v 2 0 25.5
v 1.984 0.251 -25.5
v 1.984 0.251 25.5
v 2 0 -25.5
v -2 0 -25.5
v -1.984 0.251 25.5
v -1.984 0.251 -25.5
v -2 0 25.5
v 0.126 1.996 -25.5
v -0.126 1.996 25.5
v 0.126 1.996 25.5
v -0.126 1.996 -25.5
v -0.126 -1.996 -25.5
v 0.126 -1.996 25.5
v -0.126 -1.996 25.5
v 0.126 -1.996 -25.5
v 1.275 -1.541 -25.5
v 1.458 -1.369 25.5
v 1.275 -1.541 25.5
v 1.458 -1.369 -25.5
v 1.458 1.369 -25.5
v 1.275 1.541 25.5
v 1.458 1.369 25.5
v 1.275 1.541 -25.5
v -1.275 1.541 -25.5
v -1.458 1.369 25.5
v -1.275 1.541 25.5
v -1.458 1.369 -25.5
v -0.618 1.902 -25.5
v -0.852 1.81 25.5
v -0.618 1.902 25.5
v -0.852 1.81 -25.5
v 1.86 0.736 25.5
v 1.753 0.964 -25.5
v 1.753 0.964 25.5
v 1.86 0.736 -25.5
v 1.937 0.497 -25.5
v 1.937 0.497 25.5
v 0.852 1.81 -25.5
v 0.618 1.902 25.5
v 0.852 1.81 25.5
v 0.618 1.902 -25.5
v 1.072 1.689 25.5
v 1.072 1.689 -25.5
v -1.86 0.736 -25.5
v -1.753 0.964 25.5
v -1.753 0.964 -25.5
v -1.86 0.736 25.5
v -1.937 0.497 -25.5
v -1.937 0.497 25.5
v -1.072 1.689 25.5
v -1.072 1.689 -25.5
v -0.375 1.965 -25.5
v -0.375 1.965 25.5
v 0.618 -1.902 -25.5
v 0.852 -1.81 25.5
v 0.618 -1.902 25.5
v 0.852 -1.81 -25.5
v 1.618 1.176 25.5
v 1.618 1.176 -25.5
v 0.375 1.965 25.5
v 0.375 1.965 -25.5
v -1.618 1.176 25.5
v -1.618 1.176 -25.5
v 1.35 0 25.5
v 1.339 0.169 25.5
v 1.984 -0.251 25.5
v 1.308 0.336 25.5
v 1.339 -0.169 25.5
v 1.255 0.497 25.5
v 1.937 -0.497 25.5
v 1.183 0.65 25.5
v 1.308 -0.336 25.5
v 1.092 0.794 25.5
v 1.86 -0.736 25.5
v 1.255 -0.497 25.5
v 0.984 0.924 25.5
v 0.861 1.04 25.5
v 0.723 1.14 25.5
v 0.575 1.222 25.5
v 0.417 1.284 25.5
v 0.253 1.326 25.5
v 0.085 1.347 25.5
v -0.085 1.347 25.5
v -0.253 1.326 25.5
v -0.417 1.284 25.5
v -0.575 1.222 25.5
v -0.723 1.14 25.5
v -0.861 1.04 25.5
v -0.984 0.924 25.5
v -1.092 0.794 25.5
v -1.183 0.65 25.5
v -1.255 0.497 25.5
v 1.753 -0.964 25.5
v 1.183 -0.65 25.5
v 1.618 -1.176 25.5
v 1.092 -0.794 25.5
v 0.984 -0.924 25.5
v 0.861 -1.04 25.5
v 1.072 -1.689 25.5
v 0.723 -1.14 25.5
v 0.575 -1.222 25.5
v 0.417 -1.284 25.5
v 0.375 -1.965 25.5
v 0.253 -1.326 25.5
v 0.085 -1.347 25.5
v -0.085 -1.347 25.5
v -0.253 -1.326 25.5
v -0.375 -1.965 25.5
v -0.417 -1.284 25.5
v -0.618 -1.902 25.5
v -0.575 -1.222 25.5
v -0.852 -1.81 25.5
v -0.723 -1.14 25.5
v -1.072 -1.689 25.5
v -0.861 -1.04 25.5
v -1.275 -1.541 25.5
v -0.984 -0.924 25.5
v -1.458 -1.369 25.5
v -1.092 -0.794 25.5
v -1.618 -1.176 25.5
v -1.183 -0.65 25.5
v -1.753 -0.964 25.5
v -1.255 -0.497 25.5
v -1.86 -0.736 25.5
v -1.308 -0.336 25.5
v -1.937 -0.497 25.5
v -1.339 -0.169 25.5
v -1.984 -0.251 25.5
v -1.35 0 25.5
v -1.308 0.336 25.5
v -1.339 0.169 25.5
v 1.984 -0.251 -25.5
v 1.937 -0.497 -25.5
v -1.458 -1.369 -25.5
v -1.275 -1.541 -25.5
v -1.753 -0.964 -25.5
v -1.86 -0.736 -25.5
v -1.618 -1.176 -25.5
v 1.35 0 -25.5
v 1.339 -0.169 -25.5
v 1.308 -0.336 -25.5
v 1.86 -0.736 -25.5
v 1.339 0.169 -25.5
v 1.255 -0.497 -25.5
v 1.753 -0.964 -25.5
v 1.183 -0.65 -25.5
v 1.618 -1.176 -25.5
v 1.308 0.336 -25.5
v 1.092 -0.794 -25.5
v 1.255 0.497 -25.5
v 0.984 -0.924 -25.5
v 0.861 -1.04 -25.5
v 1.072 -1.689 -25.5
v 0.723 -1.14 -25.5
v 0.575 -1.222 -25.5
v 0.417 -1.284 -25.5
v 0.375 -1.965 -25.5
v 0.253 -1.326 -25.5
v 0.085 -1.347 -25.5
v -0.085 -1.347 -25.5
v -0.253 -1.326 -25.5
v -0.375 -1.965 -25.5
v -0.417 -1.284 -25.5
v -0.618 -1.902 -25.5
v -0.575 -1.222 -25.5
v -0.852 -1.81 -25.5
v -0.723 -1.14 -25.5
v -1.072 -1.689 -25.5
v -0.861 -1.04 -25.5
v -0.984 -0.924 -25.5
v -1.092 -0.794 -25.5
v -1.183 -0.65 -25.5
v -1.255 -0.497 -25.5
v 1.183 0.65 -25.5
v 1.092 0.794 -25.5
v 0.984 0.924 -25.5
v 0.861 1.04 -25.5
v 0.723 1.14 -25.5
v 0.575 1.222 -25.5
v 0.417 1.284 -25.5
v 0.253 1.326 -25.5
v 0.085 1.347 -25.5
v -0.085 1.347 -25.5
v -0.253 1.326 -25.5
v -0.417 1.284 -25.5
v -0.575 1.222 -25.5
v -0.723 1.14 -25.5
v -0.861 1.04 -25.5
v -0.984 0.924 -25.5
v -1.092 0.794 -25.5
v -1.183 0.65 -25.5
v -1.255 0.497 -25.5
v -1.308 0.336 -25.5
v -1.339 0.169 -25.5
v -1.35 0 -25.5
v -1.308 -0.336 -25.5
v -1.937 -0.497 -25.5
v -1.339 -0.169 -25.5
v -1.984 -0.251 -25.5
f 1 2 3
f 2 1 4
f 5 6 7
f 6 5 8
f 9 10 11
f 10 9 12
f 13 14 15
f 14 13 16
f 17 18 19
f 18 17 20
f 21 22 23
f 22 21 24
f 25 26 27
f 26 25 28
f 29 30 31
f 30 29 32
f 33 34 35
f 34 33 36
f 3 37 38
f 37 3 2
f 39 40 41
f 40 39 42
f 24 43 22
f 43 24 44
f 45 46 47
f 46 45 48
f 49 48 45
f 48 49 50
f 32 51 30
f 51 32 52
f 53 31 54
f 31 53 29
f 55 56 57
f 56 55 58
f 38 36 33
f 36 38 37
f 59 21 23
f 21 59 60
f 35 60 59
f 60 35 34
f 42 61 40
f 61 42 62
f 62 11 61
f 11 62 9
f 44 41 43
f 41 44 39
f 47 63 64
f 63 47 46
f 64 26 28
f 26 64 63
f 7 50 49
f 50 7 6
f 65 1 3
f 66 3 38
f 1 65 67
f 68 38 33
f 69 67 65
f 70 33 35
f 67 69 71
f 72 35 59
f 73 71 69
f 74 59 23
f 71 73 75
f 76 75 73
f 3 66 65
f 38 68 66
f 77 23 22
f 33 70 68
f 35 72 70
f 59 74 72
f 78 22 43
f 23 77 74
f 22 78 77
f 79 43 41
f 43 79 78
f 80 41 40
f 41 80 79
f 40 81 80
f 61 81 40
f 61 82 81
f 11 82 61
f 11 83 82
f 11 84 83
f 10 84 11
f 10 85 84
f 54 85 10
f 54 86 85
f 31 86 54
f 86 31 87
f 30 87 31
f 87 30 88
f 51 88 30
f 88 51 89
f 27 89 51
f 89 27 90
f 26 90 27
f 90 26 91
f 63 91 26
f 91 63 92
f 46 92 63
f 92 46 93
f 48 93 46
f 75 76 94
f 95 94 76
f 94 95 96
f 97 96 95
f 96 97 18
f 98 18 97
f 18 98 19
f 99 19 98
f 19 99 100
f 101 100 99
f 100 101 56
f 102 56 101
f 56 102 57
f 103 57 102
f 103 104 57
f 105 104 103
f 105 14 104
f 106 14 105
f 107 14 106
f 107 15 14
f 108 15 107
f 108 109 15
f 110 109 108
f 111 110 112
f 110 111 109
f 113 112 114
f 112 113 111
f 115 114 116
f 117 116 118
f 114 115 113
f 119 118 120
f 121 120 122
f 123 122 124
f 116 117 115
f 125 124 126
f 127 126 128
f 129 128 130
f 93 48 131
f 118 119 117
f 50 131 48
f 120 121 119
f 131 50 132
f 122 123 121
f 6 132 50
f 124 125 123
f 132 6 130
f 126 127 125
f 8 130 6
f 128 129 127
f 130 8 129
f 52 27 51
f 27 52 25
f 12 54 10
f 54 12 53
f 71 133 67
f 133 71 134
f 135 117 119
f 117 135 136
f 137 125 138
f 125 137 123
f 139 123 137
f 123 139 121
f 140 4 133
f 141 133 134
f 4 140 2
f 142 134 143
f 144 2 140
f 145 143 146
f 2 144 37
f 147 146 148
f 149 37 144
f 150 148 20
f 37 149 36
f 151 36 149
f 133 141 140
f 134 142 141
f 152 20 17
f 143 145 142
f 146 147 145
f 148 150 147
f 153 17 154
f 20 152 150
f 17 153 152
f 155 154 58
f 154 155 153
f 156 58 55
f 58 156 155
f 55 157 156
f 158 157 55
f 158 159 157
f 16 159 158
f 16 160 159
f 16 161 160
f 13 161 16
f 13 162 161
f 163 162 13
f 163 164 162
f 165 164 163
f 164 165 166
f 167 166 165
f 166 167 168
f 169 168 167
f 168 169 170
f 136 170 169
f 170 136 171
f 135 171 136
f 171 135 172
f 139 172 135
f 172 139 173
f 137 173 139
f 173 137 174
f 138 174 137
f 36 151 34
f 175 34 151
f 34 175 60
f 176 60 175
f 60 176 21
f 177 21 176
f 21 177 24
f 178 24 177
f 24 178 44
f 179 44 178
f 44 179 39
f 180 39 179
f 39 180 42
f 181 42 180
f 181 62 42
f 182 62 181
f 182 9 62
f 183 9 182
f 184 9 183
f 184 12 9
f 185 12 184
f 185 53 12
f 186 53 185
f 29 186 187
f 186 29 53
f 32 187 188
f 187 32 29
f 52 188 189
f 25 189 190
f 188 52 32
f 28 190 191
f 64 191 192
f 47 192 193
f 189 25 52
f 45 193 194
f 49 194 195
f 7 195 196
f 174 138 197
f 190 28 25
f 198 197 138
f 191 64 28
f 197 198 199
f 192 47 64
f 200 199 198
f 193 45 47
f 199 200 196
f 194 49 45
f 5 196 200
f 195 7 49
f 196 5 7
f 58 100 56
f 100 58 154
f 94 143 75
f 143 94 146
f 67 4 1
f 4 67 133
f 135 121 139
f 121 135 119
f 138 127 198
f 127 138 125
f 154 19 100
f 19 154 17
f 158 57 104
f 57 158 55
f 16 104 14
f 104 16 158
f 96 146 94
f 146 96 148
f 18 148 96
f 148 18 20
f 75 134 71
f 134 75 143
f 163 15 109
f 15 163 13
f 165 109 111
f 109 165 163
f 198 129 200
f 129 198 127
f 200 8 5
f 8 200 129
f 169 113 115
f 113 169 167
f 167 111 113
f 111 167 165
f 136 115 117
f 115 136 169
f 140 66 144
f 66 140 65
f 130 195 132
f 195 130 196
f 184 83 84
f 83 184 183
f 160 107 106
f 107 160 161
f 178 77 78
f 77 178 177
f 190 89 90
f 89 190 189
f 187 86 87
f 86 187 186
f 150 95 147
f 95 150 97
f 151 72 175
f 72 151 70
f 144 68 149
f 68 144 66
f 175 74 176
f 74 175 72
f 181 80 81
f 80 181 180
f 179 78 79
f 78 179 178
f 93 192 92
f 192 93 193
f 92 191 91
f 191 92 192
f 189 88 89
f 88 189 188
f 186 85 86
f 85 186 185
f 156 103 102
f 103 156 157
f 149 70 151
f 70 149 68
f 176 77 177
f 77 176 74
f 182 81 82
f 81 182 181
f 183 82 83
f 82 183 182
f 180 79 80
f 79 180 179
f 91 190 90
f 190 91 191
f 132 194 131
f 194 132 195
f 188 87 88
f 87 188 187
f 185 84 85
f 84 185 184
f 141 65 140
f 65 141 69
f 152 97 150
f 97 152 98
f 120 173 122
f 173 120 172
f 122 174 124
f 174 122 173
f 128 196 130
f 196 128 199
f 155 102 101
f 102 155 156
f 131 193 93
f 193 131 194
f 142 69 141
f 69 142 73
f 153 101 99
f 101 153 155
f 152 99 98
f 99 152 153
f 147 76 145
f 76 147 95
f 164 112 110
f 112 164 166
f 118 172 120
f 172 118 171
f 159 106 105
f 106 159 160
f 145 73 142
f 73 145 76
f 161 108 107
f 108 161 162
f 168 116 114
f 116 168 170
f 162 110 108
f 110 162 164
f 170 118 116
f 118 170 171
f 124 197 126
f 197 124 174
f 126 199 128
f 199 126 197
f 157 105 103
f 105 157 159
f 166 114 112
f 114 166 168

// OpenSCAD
$fn = 50;


difference() {
	union() {
		translate(v = [0, 0, -25.5000000000]) {
			cylinder(h = 51, r = 2.0000000000);
		}
	}
	union() {
		translate(v = [0, 0, -100.0000000000]) {
			cylinder(h = 200, r = 1.3500000000);
		}
	}
}
